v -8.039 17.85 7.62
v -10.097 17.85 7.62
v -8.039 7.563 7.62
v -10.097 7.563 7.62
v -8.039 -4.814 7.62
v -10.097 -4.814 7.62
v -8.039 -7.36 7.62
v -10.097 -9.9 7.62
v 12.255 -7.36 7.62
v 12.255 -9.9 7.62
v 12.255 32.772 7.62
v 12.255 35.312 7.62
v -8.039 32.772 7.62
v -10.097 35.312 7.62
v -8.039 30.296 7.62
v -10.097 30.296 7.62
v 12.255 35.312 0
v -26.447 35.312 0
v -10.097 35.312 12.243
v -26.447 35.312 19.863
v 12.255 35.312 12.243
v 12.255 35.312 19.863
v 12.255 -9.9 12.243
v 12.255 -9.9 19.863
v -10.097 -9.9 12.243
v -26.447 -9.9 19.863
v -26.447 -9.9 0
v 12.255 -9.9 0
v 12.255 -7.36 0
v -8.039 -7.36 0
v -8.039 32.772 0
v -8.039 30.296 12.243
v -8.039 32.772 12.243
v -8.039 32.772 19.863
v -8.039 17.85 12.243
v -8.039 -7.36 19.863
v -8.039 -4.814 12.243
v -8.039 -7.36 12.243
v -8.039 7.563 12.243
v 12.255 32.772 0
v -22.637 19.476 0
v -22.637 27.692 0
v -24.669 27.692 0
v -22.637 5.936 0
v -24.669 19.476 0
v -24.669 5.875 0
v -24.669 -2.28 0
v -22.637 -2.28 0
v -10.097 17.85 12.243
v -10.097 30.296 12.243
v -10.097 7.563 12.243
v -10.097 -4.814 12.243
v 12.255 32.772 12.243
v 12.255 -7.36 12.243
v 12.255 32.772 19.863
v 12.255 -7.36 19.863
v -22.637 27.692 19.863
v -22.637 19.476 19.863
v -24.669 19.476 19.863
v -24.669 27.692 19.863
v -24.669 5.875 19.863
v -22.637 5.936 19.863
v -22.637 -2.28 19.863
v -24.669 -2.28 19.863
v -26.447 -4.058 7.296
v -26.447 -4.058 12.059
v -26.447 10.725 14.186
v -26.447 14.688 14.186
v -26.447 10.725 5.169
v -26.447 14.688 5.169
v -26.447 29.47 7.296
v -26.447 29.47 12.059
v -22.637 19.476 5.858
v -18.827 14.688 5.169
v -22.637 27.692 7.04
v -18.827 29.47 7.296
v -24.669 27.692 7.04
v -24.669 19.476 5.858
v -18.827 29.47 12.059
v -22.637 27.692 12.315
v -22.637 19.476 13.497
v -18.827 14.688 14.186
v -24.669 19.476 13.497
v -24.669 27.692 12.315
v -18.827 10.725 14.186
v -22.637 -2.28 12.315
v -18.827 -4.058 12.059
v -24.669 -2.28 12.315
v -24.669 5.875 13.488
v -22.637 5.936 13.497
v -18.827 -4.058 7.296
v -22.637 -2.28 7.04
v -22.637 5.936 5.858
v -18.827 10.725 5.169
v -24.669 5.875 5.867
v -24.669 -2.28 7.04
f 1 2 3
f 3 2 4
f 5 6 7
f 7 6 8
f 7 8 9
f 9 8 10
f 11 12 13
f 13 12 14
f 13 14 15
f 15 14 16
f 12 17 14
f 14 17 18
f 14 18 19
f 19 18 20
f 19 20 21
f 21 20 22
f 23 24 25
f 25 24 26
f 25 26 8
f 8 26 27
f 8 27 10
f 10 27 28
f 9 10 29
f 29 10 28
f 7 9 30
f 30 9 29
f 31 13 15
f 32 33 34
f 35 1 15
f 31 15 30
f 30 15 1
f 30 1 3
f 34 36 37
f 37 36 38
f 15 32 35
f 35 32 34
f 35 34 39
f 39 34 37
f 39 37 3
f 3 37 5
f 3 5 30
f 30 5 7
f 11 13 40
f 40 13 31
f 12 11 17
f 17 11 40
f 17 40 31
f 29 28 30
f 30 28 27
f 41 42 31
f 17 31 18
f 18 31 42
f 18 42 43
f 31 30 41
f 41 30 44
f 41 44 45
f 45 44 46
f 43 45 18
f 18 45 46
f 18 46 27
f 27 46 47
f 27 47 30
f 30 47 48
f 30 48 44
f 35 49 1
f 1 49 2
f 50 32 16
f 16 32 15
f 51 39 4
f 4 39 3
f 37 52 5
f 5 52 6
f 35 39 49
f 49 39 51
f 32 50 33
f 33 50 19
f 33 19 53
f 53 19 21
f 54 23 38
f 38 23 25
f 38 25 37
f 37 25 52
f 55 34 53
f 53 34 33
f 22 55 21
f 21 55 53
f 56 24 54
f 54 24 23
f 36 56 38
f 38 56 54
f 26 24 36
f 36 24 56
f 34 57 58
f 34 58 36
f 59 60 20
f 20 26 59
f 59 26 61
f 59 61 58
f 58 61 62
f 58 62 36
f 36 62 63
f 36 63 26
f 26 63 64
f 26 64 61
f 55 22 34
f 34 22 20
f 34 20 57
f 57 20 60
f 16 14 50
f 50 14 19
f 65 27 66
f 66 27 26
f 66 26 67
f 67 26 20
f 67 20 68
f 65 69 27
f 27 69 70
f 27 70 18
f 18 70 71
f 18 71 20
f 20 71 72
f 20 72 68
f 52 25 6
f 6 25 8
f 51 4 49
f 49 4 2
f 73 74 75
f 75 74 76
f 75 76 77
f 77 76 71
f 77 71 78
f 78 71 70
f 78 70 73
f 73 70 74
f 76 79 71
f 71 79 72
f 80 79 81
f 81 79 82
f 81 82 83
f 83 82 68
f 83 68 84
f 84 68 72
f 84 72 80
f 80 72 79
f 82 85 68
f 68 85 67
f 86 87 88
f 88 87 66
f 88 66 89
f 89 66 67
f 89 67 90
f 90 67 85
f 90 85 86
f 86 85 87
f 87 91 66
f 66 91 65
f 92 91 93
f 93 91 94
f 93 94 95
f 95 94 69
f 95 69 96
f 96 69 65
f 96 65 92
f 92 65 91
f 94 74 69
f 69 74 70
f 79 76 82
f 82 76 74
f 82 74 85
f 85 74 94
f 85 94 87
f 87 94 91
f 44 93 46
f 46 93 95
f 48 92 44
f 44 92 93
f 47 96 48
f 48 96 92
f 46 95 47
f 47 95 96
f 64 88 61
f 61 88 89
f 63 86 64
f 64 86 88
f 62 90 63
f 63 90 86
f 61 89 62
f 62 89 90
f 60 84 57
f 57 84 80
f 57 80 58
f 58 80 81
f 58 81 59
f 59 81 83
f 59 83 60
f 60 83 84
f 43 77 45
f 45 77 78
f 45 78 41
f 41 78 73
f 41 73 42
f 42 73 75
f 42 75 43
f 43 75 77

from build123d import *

# Parameters (mm, degrees)
SERVO_CLASPER_2ND_HALF_SERVO_A_DEPTH     = 7.62
CUTOUT_START                             = 7.62
CENTER_ENCAPSULATOR_W                    = 2.0574
CENTER_ENCAPSULATOR_H                    = 12.446
CENTER_ENCAPSULATOR_H_2                  = 12.377096657
CUTOUT_TO_HOLD_SERVO_DEPTH               = 4.6228
SERVO_START                              = 12.2428
SERVO_CLASPER_2ND_HALF_OTHER_SERVO_DEPTH = 7.62
SKETCH12_W                               = 19.8628
SKETCH12_H                               = 45.212
SERVO_HOLDER_EXTRUDE_DEPTH               = 16.350000066
SERVO_B_CUT_DEPTH                        = 7.62
SERVO_B_SECURER_CUT_DEPTH                = 49.383140951
SERVO_B_SECURER_CUT_DEPTH_BACK           = 49.383140951
SKETCH18_W                               = 2.032
SKETCH18_H                               = 8.21582812


with BuildPart() as part:
    # Sketch1 → Servo Clasper 2nd Half (Servo A) (new body)
    with BuildSketch(Plane.XY):
        Polygon((12.25510559, 35.312310559), (12.25510559, 32.772310559), (-8.03949441, 32.772310559), (-8.03949441, -7.359689441), (12.25510559, -7.359689441), (12.25510559, -9.899689441), (-10.09689441, -9.899689441), (-10.09689441, 35.312310559), align=None)
    extrude(amount=SERVO_CLASPER_2ND_HALF_SERVO_A_DEPTH)

    # center encapsulator → Cutout to hold servo (add)
    with BuildSketch(Plane.XY.offset(CUTOUT_START)):
        with Locations((-9.06819441, 24.072810559)):
            Rectangle(CENTER_ENCAPSULATOR_W, CENTER_ENCAPSULATOR_H)
        with Locations((-9.06819441, 1.374262231)):
            Rectangle(CENTER_ENCAPSULATOR_W, CENTER_ENCAPSULATOR_H_2)
    extrude(amount=CUTOUT_TO_HOLD_SERVO_DEPTH)

    # Sketch7 → Servo Clasper 2nd Half (Other Servo) (add)
    with BuildSketch(Plane.XY.offset(SERVO_START)):
        Polygon((12.25510559, 35.312310559), (12.25510559, 32.772310559), (-8.03949441, 32.772310559), (-8.03949441, -7.359689441), (12.25510559, -7.359689441), (12.25510559, -9.899689441), (-10.09689441, -9.899689441), (-10.09689441, 35.312310559), align=None)
    extrude(amount=SERVO_CLASPER_2ND_HALF_OTHER_SERVO_DEPTH)

    # Sketch12 → Servo Holder Extrude (add)
    with BuildSketch(Plane.ZY.offset(10.09689441)):
        with Locations((9.9314, 12.706310559)):
            Rectangle(SKETCH12_W, SKETCH12_H)
    extrude(amount=SERVO_HOLDER_EXTRUDE_DEPTH)

    # Sketch14 → Servo B Cut (cut)
    with BuildSketch(Plane.ZY.offset(26.446894476)):
        Polygon((7.29615, 29.470310559), (12.05865, 29.470310559), (14.1859, 14.687510559), (14.1859, 10.725110559), (12.05865, -4.057689441), (7.29615, -4.057689441), (5.1689, 10.725110559), (5.1689, 14.687510559), align=None)
    extrude(amount=-SERVO_B_CUT_DEPTH, mode=Mode.SUBTRACT)

    # Sketch18 → Servo B Securer Cut (cut, two sides: drawn at the far end of the back side and taken through both)
    with BuildSketch(Plane(origin=(0, 0, 0), x_dir=(-1, 0, 0), z_dir=(0, 0, -1)).offset(-SERVO_B_SECURER_CUT_DEPTH_BACK)):
        with Locations((23.652894476, 23.584396499)):
            Rectangle(SKETCH18_W, SKETCH18_H)
        Polygon((24.668894476, 5.874578093), (22.636894476, 5.936138467), (22.636894476, -2.279689441), (24.668894476, -2.279689441), align=None)
    extrude(amount=SERVO_B_SECURER_CUT_DEPTH + SERVO_B_SECURER_CUT_DEPTH_BACK, mode=Mode.SUBTRACT)


solid = part.part
